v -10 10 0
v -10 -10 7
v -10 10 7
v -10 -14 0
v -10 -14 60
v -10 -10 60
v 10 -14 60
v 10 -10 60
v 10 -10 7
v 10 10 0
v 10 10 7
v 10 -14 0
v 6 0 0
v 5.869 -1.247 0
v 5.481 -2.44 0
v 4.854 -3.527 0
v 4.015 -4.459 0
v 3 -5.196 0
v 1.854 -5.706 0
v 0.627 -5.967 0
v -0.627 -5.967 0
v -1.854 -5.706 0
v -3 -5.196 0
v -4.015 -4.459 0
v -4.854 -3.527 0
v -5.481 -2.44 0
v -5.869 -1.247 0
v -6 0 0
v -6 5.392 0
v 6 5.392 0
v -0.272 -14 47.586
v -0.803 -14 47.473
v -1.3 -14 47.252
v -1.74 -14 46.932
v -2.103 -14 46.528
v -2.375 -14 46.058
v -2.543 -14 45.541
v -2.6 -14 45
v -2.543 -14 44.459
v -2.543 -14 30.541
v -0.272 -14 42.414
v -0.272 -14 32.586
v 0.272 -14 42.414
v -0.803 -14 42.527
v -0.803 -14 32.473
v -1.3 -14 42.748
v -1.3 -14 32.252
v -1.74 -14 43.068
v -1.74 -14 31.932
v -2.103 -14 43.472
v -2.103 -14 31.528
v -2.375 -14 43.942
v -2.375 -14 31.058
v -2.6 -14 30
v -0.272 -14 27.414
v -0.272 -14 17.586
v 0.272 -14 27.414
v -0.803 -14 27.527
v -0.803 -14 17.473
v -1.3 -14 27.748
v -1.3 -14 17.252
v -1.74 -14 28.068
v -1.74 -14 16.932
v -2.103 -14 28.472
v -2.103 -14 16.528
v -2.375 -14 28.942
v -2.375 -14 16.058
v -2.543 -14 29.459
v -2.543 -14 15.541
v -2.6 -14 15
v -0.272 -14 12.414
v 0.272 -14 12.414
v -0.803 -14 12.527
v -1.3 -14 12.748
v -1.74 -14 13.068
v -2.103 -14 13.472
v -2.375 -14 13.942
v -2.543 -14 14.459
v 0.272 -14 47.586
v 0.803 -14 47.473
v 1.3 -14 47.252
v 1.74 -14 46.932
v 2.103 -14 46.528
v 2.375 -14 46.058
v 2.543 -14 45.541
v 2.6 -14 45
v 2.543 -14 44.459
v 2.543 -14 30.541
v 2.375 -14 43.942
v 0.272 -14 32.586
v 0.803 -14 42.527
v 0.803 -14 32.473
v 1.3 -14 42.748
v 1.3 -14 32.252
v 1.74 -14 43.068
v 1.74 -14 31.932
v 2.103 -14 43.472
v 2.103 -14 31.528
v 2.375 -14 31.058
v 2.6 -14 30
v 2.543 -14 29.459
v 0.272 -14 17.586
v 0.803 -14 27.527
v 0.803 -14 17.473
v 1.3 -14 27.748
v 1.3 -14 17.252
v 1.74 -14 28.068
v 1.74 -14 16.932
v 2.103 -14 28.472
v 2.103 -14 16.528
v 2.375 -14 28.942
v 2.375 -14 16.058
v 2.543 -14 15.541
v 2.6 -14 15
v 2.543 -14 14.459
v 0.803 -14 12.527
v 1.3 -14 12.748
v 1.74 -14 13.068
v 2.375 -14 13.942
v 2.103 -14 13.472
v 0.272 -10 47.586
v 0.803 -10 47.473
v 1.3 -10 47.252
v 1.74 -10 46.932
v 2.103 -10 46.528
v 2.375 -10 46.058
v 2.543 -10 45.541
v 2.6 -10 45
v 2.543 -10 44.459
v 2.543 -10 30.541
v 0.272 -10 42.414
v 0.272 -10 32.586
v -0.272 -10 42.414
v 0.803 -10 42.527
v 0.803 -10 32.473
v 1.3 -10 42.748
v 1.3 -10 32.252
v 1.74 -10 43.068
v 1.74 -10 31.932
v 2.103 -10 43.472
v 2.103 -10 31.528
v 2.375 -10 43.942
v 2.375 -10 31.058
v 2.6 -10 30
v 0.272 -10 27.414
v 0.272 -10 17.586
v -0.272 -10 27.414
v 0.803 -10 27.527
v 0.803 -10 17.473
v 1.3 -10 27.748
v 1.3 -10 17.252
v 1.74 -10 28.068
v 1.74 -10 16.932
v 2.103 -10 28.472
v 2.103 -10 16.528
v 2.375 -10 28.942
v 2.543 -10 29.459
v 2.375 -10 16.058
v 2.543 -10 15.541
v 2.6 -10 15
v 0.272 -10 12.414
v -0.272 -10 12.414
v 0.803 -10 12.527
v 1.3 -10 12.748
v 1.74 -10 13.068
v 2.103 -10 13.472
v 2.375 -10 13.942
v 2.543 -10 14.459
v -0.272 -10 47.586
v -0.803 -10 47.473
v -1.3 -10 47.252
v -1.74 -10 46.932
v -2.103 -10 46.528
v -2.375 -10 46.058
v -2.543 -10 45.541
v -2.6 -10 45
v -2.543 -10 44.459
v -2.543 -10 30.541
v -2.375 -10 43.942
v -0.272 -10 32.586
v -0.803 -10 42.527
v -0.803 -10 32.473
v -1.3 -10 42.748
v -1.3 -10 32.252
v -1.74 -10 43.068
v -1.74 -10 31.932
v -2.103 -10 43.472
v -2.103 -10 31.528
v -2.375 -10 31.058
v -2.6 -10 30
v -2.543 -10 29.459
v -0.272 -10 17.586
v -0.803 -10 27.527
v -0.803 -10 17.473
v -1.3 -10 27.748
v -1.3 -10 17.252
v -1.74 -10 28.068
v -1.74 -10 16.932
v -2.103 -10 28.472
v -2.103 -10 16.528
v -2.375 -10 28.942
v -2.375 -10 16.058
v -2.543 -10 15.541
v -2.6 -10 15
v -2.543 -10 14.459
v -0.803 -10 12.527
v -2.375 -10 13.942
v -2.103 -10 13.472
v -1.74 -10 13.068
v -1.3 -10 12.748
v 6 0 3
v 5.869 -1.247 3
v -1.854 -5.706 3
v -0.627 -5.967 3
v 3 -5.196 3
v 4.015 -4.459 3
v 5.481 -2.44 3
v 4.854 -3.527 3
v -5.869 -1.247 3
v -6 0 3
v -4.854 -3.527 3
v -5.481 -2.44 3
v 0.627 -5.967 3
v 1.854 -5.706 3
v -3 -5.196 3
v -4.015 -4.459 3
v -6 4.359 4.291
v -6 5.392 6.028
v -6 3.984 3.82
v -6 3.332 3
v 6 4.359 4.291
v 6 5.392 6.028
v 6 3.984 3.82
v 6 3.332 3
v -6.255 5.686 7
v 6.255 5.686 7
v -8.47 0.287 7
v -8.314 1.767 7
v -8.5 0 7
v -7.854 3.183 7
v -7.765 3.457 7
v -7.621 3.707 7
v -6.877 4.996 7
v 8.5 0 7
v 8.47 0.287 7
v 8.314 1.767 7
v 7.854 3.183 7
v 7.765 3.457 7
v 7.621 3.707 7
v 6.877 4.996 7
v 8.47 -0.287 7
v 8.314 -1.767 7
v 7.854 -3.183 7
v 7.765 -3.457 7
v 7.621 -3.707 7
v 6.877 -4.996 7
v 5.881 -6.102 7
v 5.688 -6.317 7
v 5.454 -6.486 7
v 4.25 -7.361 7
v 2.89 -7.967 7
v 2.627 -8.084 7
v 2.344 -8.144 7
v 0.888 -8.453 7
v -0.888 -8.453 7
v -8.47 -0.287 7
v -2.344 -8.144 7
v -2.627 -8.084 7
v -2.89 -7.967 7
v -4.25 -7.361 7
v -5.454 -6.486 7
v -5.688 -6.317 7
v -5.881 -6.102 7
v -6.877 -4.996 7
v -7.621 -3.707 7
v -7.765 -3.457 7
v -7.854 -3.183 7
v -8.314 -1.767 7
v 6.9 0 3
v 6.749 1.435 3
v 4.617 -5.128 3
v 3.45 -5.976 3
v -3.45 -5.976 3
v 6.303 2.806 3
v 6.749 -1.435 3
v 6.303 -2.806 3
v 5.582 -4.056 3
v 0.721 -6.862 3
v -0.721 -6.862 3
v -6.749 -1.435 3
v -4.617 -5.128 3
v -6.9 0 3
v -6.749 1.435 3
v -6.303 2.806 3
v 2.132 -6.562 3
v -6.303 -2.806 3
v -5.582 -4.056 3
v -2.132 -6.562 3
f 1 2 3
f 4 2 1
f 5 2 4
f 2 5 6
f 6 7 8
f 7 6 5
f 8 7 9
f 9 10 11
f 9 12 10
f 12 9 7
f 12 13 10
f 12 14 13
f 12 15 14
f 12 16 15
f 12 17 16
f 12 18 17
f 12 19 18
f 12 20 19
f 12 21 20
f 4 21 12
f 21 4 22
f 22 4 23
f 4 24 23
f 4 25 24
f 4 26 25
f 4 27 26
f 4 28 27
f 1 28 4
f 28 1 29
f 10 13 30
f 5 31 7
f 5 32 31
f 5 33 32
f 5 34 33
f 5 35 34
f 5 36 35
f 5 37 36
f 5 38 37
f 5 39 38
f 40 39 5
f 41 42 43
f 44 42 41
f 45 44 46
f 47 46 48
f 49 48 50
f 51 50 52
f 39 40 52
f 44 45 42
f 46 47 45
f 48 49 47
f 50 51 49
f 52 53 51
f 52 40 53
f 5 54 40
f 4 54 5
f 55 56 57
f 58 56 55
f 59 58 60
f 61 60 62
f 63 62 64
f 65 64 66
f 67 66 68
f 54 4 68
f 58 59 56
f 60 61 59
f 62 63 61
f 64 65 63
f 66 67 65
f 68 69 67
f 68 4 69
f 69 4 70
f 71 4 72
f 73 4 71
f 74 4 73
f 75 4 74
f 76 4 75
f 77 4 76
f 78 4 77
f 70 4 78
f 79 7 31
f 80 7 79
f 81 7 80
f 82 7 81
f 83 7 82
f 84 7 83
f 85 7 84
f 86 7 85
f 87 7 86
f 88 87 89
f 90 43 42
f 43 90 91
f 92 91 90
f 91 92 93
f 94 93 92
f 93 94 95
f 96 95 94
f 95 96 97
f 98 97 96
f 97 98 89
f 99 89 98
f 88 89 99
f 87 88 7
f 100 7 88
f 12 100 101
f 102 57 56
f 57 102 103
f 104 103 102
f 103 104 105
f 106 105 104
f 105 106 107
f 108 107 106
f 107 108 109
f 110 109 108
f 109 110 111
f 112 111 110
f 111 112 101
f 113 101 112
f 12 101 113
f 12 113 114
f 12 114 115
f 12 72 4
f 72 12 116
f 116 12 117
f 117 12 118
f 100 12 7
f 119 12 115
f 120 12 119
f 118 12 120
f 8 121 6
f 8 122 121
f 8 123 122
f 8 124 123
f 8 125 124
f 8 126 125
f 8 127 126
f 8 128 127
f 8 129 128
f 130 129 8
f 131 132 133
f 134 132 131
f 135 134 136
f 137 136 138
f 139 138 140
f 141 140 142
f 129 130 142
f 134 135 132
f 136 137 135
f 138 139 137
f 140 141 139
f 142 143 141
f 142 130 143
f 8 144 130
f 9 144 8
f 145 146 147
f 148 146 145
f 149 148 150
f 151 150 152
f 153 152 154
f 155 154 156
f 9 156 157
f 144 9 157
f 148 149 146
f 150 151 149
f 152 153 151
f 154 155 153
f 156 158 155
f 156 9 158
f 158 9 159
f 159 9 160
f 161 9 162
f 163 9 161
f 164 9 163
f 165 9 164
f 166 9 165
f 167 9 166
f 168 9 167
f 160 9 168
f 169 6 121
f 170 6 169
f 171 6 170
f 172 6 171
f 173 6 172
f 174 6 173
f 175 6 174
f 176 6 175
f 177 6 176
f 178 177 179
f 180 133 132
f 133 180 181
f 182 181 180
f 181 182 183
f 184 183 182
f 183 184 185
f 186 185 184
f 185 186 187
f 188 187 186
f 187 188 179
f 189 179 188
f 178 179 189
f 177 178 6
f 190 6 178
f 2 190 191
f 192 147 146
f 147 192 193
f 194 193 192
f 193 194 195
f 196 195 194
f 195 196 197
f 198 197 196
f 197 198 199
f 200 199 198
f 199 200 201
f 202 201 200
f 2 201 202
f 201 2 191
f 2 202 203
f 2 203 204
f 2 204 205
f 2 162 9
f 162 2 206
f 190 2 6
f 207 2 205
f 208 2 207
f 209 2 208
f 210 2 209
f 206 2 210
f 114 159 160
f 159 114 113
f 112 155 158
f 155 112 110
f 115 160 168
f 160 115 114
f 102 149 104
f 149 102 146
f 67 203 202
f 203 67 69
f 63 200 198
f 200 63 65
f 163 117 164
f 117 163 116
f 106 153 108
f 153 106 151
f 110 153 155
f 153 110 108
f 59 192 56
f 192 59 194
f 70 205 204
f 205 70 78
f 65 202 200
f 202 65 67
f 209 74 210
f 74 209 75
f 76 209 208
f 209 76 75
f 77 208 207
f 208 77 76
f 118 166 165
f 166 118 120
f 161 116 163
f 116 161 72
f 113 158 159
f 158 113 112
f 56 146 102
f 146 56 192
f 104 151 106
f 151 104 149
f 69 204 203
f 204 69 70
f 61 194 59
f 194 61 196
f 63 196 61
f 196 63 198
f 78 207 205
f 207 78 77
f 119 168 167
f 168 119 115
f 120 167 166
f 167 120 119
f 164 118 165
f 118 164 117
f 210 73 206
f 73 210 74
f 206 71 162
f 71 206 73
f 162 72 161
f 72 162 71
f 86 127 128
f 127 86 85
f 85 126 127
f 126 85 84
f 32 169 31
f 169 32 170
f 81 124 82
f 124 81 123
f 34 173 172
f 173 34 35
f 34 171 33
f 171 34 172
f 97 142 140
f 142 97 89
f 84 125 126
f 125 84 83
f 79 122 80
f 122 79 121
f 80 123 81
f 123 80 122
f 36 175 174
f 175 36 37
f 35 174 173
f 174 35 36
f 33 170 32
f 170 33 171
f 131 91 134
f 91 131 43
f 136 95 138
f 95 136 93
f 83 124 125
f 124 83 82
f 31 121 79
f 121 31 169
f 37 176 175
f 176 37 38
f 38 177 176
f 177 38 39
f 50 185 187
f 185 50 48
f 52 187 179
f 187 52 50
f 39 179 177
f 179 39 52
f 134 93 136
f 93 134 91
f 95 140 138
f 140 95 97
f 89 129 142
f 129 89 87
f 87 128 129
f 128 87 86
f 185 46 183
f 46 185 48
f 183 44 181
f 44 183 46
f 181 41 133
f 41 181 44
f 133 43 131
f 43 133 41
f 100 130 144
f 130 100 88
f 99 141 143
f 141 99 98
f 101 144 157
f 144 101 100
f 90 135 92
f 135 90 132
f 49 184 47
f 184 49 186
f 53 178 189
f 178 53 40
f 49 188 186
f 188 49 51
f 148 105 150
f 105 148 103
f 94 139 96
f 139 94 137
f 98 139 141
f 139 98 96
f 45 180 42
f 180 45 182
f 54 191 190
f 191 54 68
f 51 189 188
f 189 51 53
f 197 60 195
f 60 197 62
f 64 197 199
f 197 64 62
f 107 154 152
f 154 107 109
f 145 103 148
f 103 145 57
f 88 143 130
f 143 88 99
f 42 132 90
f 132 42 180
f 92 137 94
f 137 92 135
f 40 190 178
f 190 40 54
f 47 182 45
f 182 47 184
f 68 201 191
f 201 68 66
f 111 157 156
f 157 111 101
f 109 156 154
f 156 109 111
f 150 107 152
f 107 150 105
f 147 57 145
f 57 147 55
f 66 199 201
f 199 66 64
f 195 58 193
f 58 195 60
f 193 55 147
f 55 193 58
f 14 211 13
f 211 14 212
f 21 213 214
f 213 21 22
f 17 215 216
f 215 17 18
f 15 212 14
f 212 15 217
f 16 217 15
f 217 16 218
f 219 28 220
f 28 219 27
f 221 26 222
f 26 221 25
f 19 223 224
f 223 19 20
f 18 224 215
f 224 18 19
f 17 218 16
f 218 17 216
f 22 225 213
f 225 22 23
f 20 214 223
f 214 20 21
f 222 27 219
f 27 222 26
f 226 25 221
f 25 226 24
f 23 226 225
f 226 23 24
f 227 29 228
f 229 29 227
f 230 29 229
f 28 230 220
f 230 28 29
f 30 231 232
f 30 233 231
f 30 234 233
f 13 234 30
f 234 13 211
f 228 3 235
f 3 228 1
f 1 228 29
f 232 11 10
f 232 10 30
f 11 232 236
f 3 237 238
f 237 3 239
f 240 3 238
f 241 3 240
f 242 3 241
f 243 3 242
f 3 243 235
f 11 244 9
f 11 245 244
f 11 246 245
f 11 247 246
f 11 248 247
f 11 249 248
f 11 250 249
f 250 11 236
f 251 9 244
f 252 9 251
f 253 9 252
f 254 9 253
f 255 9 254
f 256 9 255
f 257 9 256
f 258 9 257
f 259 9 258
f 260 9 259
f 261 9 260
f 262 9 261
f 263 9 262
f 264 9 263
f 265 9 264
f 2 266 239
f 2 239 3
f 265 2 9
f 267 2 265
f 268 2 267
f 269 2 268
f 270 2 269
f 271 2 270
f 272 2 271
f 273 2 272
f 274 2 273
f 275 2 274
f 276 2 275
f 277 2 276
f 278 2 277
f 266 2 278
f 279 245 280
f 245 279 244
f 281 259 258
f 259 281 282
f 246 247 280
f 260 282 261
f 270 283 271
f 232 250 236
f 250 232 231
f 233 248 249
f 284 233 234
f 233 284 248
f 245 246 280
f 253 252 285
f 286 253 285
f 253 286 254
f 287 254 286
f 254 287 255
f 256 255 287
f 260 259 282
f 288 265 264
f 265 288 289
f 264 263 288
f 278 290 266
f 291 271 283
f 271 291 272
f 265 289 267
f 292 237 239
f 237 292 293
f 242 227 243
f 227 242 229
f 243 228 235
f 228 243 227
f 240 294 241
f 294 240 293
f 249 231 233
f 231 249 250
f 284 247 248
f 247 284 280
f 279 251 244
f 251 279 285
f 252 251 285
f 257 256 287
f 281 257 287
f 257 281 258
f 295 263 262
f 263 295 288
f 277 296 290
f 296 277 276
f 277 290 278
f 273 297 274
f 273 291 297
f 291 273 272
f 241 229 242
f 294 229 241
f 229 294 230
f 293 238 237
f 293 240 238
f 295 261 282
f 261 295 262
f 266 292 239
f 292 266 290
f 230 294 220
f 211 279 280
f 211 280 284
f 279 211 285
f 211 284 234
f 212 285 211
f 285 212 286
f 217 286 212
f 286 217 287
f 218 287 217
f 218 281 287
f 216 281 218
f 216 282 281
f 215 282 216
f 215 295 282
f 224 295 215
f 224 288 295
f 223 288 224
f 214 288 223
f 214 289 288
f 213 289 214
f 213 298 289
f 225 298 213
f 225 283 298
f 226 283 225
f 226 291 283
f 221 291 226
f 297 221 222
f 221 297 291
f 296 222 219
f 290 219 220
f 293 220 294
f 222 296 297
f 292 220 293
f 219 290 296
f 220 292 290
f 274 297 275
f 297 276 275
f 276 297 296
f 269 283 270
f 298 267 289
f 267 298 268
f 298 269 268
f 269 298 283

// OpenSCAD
$fn=30;
tube_small_width = 12.0;
tube_big_width = 13.8;
holder_width=20;
holder_extra=14;
holder_length=24;
tolerance=2;
use <MCAD/nuts_and_bolts.scad>;


module one_neg_bit(){
    cylinder(r=tube_small_width/2,h=5);

translate([-tube_small_width/2,0,0])
cube([tube_small_width,20,25]);


hull(){
translate([-holder_width/2,holder_length-holder_extra,0])
    
cube([holder_width,3,25]);
 cylinder(r=1,h=50);   };
 };
 
 
 module one_neg_bit_for_calibration(){
     calibration_tolerance=0.5;
    cylinder(r=tube_small_width/2-calibration_tolerance,h=5);

translate([-tube_small_width/2+calibration_tolerance,0,0])
cube([tube_small_width-calibration_tolerance*2,20,5]);


hull(){
    
translate([-holder_width/2,holder_length-holder_extra+calibration_tolerance*2,0])
    
cube([holder_width,3,5]);
 cylinder(r=1,h=5);   };
 translate([0,5,-1.5])
 cube([23,20,3],center=true);
 };
 
 
 
 module grabber(){
difference(){
    translate([-20/2,-holder_extra,0])
cube([20,4,60]);
    translate([0,0,15])
    rotate([90,0,0])
#cylinder(r=2.6,h=50);
      translate([0,0,45])
    rotate([90,0,0])
#cylinder(r=2.6,h=50);
    
      translate([0,0,30])
    rotate([90,0,0])
#cylinder(r=2.6,h=50);
}

difference(){
    translate([-holder_width/2,-holder_extra,0])
    cube([holder_width,holder_length,7]);

    one_neg_bit();
//translate([-tube_big_width/2,0,3])
//cube([tube_big_width,20,3]);


translate([0,0,3])
cylinder(r1=tube_big_width/2,r2=tube_big_width/2+tolerance,h=5);


}
};


module smaller(){
    
    one_neg_bit();
}


big_dist_pipette = 89;
small_dist_pipette = 26.3;
size =35;

module copy_mirror(vec=[0,1,0])
{
    children();
    mirror(vec) children();
}


module neg_bit(){
    cylinder(r=1.6,h=30);
    nutHole(3,tolerance = 0.1);
}

module neg_bit2(){
    cylinder(r=2.6,h=30);
    translate([0,0,2])
    cylinder(r=5,h=30);
}


grabber();

module pipette_negative(){
copy_mirror(){
    
    translate([0,small_dist_pipette/2,0])
      rotate([0,90,0]) neg_bit();
    
    
       translate([0,small_dist_pipette/2,big_dist_pipette])
      rotate([0,90,0]) neg_bit();
    
    
    translate([0,0,10])  rotate([0,90,0]) neg_bit2();
    
     translate([0,0,70])  rotate([0,90,0]) neg_bit2();
    
}
    
    
}


module mount(){
difference(){
translate([0,-size/2,0])
cube([4,size,100]);
    
    translate([0,0,5])
#pipette_negative();
    
}

};
